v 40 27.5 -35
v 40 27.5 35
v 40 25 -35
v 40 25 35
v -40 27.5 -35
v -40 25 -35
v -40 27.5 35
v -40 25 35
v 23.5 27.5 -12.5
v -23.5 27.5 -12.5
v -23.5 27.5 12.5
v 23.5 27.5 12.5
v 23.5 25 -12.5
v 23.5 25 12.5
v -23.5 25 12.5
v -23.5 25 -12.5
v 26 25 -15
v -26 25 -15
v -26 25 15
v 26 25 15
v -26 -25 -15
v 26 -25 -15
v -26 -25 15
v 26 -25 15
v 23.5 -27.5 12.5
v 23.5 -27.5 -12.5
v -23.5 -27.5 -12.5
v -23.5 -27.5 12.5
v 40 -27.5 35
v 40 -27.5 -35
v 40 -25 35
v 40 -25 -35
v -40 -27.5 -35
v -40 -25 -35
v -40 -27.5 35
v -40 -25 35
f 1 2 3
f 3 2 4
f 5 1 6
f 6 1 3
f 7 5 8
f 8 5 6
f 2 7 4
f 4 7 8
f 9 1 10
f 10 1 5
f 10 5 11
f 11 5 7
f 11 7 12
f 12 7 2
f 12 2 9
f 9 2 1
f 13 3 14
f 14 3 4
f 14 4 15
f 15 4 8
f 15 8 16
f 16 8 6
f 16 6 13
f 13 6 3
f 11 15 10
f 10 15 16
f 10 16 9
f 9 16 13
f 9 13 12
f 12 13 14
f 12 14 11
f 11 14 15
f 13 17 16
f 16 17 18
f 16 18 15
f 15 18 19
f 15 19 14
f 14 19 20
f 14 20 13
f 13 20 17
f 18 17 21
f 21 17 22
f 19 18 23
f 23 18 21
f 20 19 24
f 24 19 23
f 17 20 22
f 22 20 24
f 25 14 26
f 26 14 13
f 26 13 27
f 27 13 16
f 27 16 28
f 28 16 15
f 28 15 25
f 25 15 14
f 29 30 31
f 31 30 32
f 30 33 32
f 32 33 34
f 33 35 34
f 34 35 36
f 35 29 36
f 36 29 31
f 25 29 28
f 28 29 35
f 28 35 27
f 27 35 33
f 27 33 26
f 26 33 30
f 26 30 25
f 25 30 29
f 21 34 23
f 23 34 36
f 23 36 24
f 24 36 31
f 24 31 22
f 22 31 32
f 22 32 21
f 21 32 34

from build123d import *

# Parameters (mm, degrees)
SKETCH1_W           = 52
SKETCH1_H           = 30
SKETCH1_W_2         = 47
SKETCH1_H_2         = 25
BOSS_EXTRUDE1_DEPTH = 25
SKETCH2_W           = 80
SKETCH2_H           = 70
BOSS_EXTRUDE2_DEPTH = 2.5
SKETCH3_W           = 47
SKETCH3_H           = 25
CUT_EXTRUDE2_DEPTH  = 90


with BuildPart() as part:
    # Sketch1 → Boss-Extrude1 (new, symmetric)
    with BuildSketch(Plane(origin=(0, 0, 0), x_dir=(1, 0, 0), z_dir=(0, 1, 0))):
        Rectangle(SKETCH1_W, SKETCH1_H)
        Rectangle(SKETCH1_W_2, SKETCH1_H_2, mode=Mode.SUBTRACT)
    extrude(amount=BOSS_EXTRUDE1_DEPTH, both=True)


with BuildPart() as body_2:
    # Sketch2 → Boss-Extrude2 (new body)
    with BuildSketch(Plane(origin=(0, 25, 0), x_dir=(1, 0, 0), z_dir=(0, 1, 0))):
        Rectangle(SKETCH2_W, SKETCH2_H)
    boss_extrude2 = extrude(amount=BOSS_EXTRUDE2_DEPTH)


with BuildPart() as part_1:
    add(part.part)

    # Mirror2: Boss-Extrude2 across plane
    add(boss_extrude2.mirror(Plane.ZX))


with BuildPart() as cut_extrude2_tool:
    # Sketch3 → Cut-Extrude2 (new body)
    with BuildSketch(Plane(origin=(0, 27.5, 0), x_dir=(1, 0, 0), z_dir=(0, 1, 0))):
        Rectangle(SKETCH3_W, SKETCH3_H)
    extrude(amount=-CUT_EXTRUDE2_DEPTH)


with BuildPart() as part_2:
    add(part_1.part)

    # Cut-Extrude2: cut by cut_extrude2_tool
    add(cut_extrude2_tool.part, mode=Mode.SUBTRACT)


with BuildPart() as body_2_1:
    add(body_2.part)

    # Cut-Extrude2: cut by cut_extrude2_tool
    add(cut_extrude2_tool.part, mode=Mode.SUBTRACT)


solid = Compound([part_2.part, body_2_1.part])
